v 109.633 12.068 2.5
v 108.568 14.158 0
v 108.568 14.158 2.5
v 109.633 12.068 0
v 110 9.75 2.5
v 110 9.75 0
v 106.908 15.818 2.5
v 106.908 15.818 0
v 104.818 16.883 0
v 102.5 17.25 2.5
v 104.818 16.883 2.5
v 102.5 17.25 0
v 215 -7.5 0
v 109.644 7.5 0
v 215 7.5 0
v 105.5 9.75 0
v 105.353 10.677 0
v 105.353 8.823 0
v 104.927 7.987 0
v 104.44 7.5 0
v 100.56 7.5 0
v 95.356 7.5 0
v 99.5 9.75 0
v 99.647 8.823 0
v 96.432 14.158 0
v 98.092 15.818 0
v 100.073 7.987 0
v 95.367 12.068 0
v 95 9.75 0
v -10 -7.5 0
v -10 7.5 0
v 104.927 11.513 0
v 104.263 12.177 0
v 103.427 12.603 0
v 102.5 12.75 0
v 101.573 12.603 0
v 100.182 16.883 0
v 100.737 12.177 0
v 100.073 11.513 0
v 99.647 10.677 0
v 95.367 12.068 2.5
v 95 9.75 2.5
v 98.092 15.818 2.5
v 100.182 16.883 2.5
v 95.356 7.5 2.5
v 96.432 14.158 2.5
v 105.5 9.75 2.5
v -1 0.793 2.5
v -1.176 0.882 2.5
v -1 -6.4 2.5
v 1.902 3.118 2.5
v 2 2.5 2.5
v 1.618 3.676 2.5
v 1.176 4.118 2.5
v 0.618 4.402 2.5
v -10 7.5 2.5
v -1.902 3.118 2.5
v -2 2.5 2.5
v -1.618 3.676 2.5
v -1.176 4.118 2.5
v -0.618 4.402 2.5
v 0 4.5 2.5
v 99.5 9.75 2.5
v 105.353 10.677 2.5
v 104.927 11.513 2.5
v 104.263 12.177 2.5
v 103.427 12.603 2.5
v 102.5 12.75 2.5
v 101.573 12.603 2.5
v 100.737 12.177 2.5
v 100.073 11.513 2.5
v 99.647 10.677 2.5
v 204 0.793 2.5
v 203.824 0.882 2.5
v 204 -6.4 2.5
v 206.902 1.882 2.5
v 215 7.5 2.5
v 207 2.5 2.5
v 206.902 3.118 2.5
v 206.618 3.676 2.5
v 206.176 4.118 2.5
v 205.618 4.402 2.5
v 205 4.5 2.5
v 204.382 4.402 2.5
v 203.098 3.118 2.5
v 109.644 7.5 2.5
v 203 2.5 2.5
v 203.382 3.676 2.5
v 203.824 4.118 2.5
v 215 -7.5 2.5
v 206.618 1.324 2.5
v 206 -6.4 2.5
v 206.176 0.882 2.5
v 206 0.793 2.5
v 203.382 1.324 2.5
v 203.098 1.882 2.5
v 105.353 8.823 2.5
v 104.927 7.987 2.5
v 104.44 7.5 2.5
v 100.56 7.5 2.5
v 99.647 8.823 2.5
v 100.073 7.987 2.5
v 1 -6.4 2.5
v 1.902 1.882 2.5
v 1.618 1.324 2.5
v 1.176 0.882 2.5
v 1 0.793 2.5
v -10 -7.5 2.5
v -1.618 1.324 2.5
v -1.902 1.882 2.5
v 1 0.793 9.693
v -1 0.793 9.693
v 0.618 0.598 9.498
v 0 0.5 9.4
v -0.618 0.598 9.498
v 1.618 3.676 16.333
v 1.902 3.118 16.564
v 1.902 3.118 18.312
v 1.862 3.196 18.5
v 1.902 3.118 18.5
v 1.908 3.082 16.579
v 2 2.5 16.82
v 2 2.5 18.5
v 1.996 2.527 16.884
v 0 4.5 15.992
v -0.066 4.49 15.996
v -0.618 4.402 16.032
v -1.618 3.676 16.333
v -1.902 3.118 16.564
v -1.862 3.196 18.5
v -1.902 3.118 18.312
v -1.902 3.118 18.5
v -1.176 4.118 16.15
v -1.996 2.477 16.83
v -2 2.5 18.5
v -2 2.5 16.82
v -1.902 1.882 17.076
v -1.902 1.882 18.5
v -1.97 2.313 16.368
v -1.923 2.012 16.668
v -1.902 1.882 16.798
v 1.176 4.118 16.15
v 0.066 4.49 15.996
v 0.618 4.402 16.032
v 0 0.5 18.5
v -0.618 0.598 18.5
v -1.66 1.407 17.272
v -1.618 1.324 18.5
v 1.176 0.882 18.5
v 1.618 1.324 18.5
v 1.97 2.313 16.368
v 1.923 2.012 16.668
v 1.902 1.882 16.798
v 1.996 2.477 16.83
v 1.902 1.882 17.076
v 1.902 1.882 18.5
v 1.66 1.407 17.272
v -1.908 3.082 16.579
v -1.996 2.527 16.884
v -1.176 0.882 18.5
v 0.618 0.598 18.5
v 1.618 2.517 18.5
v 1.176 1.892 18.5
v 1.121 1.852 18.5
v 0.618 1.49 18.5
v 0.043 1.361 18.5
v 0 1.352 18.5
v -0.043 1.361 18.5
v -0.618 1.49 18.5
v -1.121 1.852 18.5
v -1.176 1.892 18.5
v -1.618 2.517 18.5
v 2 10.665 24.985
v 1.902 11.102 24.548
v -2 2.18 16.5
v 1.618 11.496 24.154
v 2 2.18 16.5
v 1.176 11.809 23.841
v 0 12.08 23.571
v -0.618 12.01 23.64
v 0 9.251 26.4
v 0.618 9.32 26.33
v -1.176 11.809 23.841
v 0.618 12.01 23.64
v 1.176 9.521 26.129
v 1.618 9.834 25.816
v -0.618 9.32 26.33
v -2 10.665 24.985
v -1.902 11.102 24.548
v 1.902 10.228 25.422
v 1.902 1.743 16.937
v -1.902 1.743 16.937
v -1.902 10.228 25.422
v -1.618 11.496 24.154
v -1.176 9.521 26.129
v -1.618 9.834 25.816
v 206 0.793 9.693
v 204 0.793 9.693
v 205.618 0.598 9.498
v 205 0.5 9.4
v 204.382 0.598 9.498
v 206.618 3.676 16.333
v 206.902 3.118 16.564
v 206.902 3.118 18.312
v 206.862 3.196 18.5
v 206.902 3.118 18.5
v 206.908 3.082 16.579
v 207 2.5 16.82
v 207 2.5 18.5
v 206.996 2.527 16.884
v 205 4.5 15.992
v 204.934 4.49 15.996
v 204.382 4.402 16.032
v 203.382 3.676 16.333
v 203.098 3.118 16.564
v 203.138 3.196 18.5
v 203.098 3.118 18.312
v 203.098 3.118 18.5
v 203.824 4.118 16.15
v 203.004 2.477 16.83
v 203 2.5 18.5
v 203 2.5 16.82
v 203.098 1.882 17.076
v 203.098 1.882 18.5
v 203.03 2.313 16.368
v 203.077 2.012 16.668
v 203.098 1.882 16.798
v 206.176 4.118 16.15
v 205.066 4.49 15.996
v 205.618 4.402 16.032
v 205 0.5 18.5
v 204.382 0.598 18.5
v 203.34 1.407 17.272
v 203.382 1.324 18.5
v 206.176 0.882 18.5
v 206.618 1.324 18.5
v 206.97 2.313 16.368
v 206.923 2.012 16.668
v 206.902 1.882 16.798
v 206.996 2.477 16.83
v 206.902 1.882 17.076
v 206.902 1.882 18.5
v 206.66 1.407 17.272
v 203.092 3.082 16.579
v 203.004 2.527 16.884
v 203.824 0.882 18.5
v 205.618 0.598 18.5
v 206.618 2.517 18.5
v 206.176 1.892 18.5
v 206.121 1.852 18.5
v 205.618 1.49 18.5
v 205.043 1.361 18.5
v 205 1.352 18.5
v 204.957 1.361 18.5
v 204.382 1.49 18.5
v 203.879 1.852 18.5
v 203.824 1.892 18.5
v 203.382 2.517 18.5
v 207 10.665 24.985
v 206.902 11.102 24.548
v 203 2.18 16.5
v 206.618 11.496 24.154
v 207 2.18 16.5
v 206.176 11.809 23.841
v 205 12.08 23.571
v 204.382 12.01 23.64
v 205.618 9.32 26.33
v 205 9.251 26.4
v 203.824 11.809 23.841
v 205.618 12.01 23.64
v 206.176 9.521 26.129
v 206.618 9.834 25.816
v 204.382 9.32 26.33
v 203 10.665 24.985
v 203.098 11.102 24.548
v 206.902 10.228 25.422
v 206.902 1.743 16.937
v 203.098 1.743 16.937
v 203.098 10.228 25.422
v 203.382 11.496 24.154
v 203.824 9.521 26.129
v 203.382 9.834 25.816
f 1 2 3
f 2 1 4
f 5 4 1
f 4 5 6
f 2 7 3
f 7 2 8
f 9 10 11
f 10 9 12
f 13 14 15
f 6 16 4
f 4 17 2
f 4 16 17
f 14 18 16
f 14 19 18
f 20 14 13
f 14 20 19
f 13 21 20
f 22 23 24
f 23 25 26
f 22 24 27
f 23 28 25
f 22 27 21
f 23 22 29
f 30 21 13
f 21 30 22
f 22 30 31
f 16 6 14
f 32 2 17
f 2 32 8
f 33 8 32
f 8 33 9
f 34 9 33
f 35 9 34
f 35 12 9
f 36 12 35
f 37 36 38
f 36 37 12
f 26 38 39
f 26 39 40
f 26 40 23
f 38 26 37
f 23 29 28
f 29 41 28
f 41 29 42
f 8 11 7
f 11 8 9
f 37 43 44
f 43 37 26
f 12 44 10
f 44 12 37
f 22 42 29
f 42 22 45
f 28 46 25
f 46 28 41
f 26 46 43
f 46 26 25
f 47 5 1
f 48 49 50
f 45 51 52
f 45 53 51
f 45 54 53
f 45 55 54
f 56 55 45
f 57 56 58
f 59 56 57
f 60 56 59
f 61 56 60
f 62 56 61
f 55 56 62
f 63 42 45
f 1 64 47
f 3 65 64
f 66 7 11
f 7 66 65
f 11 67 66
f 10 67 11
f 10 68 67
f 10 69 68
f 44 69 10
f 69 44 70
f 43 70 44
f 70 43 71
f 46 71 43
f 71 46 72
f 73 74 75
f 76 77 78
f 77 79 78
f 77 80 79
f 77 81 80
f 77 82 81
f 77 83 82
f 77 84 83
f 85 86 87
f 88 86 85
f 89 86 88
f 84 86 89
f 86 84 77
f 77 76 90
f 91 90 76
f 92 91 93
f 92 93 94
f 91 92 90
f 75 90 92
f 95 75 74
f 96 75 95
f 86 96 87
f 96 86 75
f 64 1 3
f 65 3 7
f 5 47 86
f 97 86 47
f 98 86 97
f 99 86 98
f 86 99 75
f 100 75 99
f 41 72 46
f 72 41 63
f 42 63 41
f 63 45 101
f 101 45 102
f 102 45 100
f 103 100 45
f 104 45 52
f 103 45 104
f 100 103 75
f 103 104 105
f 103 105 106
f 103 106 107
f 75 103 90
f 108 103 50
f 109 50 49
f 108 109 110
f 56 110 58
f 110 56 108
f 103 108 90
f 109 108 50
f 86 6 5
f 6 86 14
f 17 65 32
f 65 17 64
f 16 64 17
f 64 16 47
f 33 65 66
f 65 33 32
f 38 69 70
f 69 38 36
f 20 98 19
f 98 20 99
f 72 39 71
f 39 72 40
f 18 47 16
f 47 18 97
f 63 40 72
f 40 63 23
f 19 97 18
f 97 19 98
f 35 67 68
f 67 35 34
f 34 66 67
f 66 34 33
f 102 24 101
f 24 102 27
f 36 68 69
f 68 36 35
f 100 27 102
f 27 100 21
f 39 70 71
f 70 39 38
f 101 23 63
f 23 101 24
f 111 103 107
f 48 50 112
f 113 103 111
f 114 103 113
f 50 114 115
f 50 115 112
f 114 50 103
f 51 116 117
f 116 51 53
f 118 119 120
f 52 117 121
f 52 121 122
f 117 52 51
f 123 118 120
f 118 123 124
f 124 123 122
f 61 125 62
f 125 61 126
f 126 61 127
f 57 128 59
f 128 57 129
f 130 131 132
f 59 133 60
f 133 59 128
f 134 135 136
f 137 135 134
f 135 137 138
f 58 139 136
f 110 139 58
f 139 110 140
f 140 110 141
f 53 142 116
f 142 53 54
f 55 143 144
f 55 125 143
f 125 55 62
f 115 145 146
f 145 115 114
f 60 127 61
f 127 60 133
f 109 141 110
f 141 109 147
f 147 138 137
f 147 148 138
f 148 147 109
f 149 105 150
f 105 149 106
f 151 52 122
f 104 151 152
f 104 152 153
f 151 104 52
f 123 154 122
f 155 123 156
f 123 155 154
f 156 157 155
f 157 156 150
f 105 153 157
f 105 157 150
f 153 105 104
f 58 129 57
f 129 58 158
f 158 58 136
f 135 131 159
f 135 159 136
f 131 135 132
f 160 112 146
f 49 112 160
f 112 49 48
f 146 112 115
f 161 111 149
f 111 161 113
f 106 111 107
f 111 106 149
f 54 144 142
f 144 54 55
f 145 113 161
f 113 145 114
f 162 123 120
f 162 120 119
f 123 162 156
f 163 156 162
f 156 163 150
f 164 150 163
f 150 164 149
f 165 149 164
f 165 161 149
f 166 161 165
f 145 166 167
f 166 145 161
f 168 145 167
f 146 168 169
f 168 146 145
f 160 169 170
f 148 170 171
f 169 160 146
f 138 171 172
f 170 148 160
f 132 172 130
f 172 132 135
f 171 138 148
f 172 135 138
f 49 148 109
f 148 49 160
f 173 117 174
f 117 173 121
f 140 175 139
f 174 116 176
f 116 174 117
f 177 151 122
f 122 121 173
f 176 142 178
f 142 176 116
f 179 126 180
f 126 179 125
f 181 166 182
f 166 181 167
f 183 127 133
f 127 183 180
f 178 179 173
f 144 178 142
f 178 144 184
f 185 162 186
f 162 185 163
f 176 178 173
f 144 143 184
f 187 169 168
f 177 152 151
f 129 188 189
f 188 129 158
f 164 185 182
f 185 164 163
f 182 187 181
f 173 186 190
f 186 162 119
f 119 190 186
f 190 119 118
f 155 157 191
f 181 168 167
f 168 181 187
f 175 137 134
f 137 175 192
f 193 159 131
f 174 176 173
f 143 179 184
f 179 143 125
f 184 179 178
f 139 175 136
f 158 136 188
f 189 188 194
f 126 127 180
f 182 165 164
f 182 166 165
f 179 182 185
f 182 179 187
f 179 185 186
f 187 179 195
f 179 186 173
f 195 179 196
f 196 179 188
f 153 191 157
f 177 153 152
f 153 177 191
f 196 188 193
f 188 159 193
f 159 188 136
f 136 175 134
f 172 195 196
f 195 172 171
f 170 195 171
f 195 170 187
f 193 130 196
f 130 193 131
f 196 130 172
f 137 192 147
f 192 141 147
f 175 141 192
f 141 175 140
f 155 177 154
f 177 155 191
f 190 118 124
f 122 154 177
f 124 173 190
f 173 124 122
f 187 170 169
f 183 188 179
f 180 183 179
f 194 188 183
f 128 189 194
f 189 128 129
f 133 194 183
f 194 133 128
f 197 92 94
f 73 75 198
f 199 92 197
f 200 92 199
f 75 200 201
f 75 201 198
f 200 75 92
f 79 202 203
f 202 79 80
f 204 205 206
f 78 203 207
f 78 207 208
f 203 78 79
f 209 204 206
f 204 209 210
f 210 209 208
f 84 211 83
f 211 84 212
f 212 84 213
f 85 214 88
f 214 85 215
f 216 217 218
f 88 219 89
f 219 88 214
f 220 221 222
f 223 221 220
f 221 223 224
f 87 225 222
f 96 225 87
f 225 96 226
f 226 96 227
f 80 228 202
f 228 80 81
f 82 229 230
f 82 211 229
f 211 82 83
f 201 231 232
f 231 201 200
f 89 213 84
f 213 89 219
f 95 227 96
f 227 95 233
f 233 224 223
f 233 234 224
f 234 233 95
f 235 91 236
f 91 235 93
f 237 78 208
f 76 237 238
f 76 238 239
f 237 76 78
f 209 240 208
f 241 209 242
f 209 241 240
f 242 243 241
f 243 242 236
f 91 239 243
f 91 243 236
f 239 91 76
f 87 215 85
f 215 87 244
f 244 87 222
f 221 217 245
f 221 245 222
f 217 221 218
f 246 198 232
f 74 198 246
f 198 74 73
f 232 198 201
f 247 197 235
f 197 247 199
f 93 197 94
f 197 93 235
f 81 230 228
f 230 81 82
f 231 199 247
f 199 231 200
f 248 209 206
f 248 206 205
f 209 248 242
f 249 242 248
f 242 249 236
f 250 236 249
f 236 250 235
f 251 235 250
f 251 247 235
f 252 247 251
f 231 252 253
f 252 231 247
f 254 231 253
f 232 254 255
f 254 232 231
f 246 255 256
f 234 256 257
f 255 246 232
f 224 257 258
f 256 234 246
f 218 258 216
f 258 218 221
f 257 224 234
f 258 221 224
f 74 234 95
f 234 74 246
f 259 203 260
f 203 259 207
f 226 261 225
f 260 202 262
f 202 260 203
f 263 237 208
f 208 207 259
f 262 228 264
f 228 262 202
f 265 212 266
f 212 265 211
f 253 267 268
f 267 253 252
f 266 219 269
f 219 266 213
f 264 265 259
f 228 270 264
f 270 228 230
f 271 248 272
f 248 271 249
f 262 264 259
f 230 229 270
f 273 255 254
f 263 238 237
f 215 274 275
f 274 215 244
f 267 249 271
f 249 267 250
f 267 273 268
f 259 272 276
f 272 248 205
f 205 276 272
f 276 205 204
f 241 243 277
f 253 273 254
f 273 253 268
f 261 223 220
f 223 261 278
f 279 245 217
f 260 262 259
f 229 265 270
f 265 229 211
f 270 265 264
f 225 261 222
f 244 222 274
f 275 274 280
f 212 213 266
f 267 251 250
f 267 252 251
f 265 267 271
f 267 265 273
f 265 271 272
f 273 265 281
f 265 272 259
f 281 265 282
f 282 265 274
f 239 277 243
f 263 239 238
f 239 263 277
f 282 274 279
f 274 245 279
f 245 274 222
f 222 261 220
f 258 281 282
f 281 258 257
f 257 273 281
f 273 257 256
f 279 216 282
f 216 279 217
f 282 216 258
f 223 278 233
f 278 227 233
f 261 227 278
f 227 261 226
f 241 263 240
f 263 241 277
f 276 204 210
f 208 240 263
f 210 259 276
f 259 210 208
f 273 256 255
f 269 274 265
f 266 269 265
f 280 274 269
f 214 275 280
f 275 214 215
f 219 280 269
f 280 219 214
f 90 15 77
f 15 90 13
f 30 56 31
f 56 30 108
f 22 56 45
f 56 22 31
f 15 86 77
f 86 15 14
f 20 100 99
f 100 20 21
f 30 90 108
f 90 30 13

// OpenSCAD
$fn = 20;
base_height =   2.5;
hook_dist   = 205;
base_margin =  10;
base_width  = hook_dist + 2*base_margin;
base_length =  15;
hook_diam   =   4;
hook_height =  16;
hook_end    =  12;

module support() {
    difference() {
        cube( [ 0.5*hook_diam, 0.5*hook_height, 0.5*hook_height ] );
        rotate( [ 45, 0 , 0 ] )
            translate([-hook_diam, 0, 0 ])
            cube( [ 2*hook_diam, 1.5*hook_height, 0.5*hook_height ] );
    }
}

module hanger() {
    difference() {
        cylinder( d = base_length, h = base_height );
        translate([ 0, 0, -base_height])
        cylinder( d = 1.5*hook_diam, h = 3*base_height );
    }
}

module hook() {
    color( [1, 1, 0] )
    translate( [0, (1/6)*base_length, base_height] )
    color([0, 0, 1])
        cylinder(d = hook_diam, h = hook_height );
    translate( [ 0, (1/6)*base_length - 0.08*hook_diam, base_height + hook_height - 0.5*hook_diam ] )
        rotate( [ -45, 0, 0 ] )
            cylinder( d = hook_diam, h = hook_end );

    translate( [ -0.25*hook_diam, -0.40*hook_height, base_height ] ) support();
}

module base() {
    translate([ -base_margin, -0.5*base_length, 0 ])
        cube( [ base_width, base_length, base_height ] );
}

translate([0.5*hook_dist, 0.65*base_length, 0]) hanger();
base();
translate([ 0*hook_dist, 0, 0]) hook();
translate([ 1*hook_dist, 0, 0]) hook();
